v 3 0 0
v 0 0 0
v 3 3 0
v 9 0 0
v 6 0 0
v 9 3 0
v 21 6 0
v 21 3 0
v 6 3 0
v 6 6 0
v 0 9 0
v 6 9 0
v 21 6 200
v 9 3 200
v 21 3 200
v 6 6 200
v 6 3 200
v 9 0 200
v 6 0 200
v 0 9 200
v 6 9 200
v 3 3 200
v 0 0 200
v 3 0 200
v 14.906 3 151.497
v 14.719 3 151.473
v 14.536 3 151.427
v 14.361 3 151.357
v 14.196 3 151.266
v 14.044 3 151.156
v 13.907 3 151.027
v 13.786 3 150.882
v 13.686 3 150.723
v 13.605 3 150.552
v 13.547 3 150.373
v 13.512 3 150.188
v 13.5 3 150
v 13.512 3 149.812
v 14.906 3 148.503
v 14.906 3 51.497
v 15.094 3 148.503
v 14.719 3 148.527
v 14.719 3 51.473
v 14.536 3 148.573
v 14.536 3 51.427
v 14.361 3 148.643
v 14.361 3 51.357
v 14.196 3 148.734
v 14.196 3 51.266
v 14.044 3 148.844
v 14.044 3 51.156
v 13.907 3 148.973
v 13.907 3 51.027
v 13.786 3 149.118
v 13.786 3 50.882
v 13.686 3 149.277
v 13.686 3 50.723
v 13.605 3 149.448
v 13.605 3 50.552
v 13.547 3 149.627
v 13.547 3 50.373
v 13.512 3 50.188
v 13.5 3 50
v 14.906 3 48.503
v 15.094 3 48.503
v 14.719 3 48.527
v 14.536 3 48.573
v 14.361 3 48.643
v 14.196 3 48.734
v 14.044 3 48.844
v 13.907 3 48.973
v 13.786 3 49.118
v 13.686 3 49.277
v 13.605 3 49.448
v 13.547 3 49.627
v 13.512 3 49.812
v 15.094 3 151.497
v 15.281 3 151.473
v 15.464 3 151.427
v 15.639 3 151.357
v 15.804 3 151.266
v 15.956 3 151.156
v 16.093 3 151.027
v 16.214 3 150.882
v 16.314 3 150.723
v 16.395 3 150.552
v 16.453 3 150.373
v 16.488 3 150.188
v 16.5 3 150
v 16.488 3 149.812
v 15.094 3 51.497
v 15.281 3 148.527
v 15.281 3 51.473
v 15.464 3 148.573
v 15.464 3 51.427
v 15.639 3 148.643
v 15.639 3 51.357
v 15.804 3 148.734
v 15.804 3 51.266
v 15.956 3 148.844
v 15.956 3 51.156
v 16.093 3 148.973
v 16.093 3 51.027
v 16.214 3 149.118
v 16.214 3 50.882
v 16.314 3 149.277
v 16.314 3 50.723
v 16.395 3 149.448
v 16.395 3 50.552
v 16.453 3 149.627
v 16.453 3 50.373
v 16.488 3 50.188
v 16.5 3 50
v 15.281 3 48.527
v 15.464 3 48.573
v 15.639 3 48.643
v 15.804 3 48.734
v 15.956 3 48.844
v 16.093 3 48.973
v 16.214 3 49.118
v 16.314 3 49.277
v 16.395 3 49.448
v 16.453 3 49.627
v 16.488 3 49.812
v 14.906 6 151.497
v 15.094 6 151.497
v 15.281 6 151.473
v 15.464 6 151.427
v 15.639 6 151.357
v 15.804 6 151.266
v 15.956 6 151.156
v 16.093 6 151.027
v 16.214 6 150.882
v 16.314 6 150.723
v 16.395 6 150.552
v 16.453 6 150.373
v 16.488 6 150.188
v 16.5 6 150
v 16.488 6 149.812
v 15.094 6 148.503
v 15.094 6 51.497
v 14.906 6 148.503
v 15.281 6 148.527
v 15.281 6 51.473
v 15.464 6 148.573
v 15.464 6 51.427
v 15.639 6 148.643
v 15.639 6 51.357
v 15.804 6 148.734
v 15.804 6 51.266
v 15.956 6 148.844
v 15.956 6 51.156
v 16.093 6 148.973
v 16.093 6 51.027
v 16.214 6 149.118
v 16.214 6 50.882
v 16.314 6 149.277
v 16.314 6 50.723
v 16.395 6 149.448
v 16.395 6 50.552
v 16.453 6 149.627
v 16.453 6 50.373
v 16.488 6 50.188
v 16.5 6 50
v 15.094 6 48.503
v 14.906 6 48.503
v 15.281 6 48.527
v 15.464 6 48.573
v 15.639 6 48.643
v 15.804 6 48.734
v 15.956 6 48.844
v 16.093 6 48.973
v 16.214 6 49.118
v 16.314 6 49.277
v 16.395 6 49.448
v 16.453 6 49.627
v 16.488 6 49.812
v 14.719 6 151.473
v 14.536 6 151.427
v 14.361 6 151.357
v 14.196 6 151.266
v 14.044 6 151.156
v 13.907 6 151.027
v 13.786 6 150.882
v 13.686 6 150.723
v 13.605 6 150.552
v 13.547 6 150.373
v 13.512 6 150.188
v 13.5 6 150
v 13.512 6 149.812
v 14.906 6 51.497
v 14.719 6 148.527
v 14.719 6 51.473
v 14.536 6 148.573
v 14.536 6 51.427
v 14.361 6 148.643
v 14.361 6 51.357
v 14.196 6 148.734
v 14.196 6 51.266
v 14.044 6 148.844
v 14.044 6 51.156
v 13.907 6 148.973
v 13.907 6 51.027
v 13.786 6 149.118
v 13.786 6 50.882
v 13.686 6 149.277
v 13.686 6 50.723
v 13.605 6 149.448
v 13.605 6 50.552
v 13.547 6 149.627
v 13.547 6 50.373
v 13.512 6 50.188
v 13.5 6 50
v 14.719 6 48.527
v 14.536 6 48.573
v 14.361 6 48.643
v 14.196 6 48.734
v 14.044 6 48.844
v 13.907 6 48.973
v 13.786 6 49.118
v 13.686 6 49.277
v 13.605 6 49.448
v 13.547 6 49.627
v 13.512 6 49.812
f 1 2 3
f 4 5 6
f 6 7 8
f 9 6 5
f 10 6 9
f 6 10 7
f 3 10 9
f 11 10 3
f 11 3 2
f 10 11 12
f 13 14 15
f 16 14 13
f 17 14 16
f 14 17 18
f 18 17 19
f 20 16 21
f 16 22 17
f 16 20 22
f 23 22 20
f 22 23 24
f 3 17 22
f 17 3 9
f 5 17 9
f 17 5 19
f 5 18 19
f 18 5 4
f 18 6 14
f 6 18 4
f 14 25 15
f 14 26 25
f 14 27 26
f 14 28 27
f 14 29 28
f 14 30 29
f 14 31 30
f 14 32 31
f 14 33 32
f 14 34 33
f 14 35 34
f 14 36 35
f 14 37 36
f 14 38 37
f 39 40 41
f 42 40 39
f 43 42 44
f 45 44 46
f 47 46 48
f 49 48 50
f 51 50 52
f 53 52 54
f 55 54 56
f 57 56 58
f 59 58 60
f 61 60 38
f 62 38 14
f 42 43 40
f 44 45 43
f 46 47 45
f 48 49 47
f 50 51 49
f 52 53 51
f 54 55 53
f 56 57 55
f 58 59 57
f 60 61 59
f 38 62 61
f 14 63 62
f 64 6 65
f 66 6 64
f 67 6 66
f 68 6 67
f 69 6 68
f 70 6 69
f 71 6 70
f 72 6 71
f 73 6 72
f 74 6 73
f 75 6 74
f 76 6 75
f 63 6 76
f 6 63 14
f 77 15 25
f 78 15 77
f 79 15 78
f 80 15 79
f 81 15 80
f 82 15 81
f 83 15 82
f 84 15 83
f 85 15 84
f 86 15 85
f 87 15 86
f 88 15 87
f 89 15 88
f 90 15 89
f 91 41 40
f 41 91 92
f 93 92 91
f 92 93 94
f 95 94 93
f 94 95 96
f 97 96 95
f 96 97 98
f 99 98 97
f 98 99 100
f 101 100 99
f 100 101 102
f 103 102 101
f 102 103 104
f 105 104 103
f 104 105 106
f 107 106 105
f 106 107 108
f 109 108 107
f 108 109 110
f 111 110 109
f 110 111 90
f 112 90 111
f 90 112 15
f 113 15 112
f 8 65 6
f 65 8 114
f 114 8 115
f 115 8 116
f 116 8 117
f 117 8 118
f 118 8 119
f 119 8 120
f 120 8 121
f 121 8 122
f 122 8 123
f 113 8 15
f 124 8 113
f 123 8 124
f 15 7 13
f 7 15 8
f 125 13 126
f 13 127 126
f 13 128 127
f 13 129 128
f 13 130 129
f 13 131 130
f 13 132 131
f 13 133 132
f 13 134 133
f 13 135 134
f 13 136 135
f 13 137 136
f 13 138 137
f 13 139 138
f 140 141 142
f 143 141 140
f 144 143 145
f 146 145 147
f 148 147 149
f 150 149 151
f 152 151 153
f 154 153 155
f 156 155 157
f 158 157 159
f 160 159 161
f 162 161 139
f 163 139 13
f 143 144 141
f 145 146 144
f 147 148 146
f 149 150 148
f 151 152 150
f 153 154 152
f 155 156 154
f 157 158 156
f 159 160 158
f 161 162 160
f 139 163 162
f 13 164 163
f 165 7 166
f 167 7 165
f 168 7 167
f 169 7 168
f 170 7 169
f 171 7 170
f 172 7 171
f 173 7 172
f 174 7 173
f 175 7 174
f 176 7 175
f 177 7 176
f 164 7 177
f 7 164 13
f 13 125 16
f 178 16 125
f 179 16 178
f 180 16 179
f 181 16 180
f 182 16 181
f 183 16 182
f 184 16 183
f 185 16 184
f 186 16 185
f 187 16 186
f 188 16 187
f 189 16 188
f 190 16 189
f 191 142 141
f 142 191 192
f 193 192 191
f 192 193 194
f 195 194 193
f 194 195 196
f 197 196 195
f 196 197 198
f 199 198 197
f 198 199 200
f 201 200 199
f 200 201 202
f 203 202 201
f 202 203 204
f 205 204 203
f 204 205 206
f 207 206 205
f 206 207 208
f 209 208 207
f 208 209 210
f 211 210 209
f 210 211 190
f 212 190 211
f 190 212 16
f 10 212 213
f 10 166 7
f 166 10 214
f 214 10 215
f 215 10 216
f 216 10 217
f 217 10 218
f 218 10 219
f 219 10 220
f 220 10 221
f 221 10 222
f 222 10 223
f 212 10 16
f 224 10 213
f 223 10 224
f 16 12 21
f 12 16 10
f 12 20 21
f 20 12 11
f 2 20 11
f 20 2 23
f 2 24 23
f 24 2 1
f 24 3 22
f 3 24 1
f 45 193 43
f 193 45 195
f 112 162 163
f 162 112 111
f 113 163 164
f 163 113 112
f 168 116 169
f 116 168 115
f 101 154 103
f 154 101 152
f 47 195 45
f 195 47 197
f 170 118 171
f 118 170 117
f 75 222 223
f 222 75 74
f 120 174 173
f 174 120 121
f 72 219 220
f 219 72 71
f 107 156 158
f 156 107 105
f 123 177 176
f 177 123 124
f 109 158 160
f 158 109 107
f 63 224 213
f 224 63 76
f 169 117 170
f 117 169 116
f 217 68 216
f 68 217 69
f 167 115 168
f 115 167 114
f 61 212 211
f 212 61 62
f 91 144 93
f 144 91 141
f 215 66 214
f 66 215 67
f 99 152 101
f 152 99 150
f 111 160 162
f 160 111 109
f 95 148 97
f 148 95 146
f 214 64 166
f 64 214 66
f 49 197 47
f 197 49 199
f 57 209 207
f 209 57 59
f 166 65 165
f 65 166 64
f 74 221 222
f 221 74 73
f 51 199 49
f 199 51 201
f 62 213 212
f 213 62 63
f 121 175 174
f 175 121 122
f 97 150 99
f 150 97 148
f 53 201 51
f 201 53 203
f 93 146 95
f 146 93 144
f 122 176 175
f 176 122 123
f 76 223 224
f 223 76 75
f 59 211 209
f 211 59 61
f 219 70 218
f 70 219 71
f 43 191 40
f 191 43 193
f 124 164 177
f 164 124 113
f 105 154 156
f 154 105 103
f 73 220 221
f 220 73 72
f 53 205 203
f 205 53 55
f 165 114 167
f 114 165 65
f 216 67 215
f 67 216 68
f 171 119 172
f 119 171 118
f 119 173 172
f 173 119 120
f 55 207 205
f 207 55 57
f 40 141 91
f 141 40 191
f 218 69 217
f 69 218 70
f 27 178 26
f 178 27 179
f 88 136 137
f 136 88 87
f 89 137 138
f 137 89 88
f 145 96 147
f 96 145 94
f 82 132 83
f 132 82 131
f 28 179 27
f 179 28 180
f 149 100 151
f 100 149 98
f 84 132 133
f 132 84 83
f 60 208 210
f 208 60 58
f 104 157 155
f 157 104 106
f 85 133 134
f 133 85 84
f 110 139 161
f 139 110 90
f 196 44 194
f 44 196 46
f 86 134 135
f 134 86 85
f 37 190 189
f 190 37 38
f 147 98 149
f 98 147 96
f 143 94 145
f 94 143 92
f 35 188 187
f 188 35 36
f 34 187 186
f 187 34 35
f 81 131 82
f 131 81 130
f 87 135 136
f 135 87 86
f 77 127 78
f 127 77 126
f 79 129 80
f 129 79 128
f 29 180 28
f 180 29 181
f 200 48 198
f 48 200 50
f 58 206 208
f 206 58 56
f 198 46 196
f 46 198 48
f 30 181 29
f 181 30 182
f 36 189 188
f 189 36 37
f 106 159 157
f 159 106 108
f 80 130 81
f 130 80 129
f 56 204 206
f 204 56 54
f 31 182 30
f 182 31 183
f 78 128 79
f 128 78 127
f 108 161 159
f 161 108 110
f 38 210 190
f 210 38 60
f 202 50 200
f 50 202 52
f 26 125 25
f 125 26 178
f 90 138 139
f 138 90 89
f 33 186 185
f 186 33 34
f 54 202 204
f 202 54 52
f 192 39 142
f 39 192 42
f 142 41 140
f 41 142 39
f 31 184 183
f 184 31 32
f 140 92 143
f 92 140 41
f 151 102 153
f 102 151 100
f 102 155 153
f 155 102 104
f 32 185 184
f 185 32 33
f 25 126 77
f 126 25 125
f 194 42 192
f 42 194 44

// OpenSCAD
// file: enclosure_lib.scad
module SimpleCorner(wallWidth = 3,
                    totalWidth = 50,
                    totalHeight = 50,
                    totalDepth = 50,
                    gutterWidth = 3)
{
    // back wall
    cube([totalWidth,wallWidth,totalHeight]);
    // side wall
    translate([totalWidth,0,0])
        rotate([0,0,90])
            cube([totalDepth,wallWidth,totalHeight]);
    // base
    translate([0,totalDepth,0])
        rotate([90, 0, 0])
            cube([totalWidth,
                  wallWidth,
                  totalDepth]);
    // back gutter
    translate([0,
               wallWidth + gutterWidth,
               wallWidth * 2])
        rotate([0,90,0])
            cube([wallWidth, 
                  wallWidth, 
                  totalWidth - wallWidth - gutterWidth]);
    // side gutter
    translate([totalWidth - 2 * wallWidth - gutterWidth,
               totalDepth,
               wallWidth])
        rotate([90,0,0])
            cube([wallWidth, 
                  wallWidth, 
                  totalDepth - wallWidth - gutterWidth]);
    // gutter fill
    cube(3);
}
module Cone(holeRadius = 3)
{
    centerRadius    = 3;
    centerHeight    = 2;
    masterRadius    = 18;
    totalHeight     = 3;
    tanAlpha        = totalHeight / (masterRadius - centerRadius);
    holeHeight      = tanAlpha * (masterRadius - holeRadius);
    rotate_extrude()
        polygon(points=[
            [0, 0],
            [masterRadius, 0],
            [holeRadius, holeHeight],
            [holeRadius, 1],
            [0, 1]
        ]);
}
module Base(width = 50,
       depth = 50,
       halfHeight = 3)
{
    cube([width, depth, halfHeight]);
    translate([width / 2, depth / 2, halfHeight])
        Cone(3.5);
}

module BasedCorner(wallWidth = 3,
                   width = 50,
                   height = 50,
                   depth = 50,
                   gutterWidth = 3.4)
{
    translate([0, 0, wallWidth])
        union() {
            SimpleCorner(wallWidth, 
                         width, 
                         height - wallWidth, 
                         depth,
                         gutterWidth);
            translate([0,0, -wallWidth])
                difference() {
                    cube([width, depth, wallWidth]);
                    translate([width/2, depth/2, -.01])
                        Cone();
            }
        }
}

module top_profile(gutterWidth = 3) 
{
    polygon([
        [0, 0],
        [0, 9],
        [6, 9],
        [6, 6],
        [21,6],
        [21,3],
        [6 + gutterWidth, 3],
        [6 + gutterWidth, 0],
        [3 + gutterWidth, 0],
        [3 + gutterWidth, 3],
        [3, 3],
        [3, 0],
    ]);
}


module CableCoverBorderProfile(
    width = 6,
    borderHeight = 3,
    gutterHeight = 3,
    gutterWidth = 3)
{
    polygon([
        [0,0],
        [width, 0],
        [width, borderHeight],
        [width - gutterWidth, borderHeight],
        [width - gutterWidth, borderHeight + gutterHeight],
        [width, borderHeight + gutterHeight],
        [width, 2 * borderHeight + gutterHeight],
        [0, 2 * borderHeight + gutterHeight]
    ]);
}
module CableCoverBorderLinear(height = 10)
{
    linear_extrude(height)
        CableCoverBorderProfile();
}
union()
{
    //rotate_extrude(180)
    //    CableCoverBorderProfile();
    CableCoverBorderLinear();
    translate([-6, 3, 0])
        cube([6, 3, 10]);
    translate([-6, 9, 0])
        rotate([0, 0, 180])
            CableCoverBorderLinear();
}
// main file
use <enclosure_lib.scad>

$fn=50;
difference() {
    linear_extrude(200) 
        top_profile(3);
    translate([15,10,50])
        rotate([90,0,0])
            cylinder(15, 1.5, 1.5);
    translate([15,10,150])
        rotate([90,0,0])
            cylinder(15, 1.5, 1.5);
}
